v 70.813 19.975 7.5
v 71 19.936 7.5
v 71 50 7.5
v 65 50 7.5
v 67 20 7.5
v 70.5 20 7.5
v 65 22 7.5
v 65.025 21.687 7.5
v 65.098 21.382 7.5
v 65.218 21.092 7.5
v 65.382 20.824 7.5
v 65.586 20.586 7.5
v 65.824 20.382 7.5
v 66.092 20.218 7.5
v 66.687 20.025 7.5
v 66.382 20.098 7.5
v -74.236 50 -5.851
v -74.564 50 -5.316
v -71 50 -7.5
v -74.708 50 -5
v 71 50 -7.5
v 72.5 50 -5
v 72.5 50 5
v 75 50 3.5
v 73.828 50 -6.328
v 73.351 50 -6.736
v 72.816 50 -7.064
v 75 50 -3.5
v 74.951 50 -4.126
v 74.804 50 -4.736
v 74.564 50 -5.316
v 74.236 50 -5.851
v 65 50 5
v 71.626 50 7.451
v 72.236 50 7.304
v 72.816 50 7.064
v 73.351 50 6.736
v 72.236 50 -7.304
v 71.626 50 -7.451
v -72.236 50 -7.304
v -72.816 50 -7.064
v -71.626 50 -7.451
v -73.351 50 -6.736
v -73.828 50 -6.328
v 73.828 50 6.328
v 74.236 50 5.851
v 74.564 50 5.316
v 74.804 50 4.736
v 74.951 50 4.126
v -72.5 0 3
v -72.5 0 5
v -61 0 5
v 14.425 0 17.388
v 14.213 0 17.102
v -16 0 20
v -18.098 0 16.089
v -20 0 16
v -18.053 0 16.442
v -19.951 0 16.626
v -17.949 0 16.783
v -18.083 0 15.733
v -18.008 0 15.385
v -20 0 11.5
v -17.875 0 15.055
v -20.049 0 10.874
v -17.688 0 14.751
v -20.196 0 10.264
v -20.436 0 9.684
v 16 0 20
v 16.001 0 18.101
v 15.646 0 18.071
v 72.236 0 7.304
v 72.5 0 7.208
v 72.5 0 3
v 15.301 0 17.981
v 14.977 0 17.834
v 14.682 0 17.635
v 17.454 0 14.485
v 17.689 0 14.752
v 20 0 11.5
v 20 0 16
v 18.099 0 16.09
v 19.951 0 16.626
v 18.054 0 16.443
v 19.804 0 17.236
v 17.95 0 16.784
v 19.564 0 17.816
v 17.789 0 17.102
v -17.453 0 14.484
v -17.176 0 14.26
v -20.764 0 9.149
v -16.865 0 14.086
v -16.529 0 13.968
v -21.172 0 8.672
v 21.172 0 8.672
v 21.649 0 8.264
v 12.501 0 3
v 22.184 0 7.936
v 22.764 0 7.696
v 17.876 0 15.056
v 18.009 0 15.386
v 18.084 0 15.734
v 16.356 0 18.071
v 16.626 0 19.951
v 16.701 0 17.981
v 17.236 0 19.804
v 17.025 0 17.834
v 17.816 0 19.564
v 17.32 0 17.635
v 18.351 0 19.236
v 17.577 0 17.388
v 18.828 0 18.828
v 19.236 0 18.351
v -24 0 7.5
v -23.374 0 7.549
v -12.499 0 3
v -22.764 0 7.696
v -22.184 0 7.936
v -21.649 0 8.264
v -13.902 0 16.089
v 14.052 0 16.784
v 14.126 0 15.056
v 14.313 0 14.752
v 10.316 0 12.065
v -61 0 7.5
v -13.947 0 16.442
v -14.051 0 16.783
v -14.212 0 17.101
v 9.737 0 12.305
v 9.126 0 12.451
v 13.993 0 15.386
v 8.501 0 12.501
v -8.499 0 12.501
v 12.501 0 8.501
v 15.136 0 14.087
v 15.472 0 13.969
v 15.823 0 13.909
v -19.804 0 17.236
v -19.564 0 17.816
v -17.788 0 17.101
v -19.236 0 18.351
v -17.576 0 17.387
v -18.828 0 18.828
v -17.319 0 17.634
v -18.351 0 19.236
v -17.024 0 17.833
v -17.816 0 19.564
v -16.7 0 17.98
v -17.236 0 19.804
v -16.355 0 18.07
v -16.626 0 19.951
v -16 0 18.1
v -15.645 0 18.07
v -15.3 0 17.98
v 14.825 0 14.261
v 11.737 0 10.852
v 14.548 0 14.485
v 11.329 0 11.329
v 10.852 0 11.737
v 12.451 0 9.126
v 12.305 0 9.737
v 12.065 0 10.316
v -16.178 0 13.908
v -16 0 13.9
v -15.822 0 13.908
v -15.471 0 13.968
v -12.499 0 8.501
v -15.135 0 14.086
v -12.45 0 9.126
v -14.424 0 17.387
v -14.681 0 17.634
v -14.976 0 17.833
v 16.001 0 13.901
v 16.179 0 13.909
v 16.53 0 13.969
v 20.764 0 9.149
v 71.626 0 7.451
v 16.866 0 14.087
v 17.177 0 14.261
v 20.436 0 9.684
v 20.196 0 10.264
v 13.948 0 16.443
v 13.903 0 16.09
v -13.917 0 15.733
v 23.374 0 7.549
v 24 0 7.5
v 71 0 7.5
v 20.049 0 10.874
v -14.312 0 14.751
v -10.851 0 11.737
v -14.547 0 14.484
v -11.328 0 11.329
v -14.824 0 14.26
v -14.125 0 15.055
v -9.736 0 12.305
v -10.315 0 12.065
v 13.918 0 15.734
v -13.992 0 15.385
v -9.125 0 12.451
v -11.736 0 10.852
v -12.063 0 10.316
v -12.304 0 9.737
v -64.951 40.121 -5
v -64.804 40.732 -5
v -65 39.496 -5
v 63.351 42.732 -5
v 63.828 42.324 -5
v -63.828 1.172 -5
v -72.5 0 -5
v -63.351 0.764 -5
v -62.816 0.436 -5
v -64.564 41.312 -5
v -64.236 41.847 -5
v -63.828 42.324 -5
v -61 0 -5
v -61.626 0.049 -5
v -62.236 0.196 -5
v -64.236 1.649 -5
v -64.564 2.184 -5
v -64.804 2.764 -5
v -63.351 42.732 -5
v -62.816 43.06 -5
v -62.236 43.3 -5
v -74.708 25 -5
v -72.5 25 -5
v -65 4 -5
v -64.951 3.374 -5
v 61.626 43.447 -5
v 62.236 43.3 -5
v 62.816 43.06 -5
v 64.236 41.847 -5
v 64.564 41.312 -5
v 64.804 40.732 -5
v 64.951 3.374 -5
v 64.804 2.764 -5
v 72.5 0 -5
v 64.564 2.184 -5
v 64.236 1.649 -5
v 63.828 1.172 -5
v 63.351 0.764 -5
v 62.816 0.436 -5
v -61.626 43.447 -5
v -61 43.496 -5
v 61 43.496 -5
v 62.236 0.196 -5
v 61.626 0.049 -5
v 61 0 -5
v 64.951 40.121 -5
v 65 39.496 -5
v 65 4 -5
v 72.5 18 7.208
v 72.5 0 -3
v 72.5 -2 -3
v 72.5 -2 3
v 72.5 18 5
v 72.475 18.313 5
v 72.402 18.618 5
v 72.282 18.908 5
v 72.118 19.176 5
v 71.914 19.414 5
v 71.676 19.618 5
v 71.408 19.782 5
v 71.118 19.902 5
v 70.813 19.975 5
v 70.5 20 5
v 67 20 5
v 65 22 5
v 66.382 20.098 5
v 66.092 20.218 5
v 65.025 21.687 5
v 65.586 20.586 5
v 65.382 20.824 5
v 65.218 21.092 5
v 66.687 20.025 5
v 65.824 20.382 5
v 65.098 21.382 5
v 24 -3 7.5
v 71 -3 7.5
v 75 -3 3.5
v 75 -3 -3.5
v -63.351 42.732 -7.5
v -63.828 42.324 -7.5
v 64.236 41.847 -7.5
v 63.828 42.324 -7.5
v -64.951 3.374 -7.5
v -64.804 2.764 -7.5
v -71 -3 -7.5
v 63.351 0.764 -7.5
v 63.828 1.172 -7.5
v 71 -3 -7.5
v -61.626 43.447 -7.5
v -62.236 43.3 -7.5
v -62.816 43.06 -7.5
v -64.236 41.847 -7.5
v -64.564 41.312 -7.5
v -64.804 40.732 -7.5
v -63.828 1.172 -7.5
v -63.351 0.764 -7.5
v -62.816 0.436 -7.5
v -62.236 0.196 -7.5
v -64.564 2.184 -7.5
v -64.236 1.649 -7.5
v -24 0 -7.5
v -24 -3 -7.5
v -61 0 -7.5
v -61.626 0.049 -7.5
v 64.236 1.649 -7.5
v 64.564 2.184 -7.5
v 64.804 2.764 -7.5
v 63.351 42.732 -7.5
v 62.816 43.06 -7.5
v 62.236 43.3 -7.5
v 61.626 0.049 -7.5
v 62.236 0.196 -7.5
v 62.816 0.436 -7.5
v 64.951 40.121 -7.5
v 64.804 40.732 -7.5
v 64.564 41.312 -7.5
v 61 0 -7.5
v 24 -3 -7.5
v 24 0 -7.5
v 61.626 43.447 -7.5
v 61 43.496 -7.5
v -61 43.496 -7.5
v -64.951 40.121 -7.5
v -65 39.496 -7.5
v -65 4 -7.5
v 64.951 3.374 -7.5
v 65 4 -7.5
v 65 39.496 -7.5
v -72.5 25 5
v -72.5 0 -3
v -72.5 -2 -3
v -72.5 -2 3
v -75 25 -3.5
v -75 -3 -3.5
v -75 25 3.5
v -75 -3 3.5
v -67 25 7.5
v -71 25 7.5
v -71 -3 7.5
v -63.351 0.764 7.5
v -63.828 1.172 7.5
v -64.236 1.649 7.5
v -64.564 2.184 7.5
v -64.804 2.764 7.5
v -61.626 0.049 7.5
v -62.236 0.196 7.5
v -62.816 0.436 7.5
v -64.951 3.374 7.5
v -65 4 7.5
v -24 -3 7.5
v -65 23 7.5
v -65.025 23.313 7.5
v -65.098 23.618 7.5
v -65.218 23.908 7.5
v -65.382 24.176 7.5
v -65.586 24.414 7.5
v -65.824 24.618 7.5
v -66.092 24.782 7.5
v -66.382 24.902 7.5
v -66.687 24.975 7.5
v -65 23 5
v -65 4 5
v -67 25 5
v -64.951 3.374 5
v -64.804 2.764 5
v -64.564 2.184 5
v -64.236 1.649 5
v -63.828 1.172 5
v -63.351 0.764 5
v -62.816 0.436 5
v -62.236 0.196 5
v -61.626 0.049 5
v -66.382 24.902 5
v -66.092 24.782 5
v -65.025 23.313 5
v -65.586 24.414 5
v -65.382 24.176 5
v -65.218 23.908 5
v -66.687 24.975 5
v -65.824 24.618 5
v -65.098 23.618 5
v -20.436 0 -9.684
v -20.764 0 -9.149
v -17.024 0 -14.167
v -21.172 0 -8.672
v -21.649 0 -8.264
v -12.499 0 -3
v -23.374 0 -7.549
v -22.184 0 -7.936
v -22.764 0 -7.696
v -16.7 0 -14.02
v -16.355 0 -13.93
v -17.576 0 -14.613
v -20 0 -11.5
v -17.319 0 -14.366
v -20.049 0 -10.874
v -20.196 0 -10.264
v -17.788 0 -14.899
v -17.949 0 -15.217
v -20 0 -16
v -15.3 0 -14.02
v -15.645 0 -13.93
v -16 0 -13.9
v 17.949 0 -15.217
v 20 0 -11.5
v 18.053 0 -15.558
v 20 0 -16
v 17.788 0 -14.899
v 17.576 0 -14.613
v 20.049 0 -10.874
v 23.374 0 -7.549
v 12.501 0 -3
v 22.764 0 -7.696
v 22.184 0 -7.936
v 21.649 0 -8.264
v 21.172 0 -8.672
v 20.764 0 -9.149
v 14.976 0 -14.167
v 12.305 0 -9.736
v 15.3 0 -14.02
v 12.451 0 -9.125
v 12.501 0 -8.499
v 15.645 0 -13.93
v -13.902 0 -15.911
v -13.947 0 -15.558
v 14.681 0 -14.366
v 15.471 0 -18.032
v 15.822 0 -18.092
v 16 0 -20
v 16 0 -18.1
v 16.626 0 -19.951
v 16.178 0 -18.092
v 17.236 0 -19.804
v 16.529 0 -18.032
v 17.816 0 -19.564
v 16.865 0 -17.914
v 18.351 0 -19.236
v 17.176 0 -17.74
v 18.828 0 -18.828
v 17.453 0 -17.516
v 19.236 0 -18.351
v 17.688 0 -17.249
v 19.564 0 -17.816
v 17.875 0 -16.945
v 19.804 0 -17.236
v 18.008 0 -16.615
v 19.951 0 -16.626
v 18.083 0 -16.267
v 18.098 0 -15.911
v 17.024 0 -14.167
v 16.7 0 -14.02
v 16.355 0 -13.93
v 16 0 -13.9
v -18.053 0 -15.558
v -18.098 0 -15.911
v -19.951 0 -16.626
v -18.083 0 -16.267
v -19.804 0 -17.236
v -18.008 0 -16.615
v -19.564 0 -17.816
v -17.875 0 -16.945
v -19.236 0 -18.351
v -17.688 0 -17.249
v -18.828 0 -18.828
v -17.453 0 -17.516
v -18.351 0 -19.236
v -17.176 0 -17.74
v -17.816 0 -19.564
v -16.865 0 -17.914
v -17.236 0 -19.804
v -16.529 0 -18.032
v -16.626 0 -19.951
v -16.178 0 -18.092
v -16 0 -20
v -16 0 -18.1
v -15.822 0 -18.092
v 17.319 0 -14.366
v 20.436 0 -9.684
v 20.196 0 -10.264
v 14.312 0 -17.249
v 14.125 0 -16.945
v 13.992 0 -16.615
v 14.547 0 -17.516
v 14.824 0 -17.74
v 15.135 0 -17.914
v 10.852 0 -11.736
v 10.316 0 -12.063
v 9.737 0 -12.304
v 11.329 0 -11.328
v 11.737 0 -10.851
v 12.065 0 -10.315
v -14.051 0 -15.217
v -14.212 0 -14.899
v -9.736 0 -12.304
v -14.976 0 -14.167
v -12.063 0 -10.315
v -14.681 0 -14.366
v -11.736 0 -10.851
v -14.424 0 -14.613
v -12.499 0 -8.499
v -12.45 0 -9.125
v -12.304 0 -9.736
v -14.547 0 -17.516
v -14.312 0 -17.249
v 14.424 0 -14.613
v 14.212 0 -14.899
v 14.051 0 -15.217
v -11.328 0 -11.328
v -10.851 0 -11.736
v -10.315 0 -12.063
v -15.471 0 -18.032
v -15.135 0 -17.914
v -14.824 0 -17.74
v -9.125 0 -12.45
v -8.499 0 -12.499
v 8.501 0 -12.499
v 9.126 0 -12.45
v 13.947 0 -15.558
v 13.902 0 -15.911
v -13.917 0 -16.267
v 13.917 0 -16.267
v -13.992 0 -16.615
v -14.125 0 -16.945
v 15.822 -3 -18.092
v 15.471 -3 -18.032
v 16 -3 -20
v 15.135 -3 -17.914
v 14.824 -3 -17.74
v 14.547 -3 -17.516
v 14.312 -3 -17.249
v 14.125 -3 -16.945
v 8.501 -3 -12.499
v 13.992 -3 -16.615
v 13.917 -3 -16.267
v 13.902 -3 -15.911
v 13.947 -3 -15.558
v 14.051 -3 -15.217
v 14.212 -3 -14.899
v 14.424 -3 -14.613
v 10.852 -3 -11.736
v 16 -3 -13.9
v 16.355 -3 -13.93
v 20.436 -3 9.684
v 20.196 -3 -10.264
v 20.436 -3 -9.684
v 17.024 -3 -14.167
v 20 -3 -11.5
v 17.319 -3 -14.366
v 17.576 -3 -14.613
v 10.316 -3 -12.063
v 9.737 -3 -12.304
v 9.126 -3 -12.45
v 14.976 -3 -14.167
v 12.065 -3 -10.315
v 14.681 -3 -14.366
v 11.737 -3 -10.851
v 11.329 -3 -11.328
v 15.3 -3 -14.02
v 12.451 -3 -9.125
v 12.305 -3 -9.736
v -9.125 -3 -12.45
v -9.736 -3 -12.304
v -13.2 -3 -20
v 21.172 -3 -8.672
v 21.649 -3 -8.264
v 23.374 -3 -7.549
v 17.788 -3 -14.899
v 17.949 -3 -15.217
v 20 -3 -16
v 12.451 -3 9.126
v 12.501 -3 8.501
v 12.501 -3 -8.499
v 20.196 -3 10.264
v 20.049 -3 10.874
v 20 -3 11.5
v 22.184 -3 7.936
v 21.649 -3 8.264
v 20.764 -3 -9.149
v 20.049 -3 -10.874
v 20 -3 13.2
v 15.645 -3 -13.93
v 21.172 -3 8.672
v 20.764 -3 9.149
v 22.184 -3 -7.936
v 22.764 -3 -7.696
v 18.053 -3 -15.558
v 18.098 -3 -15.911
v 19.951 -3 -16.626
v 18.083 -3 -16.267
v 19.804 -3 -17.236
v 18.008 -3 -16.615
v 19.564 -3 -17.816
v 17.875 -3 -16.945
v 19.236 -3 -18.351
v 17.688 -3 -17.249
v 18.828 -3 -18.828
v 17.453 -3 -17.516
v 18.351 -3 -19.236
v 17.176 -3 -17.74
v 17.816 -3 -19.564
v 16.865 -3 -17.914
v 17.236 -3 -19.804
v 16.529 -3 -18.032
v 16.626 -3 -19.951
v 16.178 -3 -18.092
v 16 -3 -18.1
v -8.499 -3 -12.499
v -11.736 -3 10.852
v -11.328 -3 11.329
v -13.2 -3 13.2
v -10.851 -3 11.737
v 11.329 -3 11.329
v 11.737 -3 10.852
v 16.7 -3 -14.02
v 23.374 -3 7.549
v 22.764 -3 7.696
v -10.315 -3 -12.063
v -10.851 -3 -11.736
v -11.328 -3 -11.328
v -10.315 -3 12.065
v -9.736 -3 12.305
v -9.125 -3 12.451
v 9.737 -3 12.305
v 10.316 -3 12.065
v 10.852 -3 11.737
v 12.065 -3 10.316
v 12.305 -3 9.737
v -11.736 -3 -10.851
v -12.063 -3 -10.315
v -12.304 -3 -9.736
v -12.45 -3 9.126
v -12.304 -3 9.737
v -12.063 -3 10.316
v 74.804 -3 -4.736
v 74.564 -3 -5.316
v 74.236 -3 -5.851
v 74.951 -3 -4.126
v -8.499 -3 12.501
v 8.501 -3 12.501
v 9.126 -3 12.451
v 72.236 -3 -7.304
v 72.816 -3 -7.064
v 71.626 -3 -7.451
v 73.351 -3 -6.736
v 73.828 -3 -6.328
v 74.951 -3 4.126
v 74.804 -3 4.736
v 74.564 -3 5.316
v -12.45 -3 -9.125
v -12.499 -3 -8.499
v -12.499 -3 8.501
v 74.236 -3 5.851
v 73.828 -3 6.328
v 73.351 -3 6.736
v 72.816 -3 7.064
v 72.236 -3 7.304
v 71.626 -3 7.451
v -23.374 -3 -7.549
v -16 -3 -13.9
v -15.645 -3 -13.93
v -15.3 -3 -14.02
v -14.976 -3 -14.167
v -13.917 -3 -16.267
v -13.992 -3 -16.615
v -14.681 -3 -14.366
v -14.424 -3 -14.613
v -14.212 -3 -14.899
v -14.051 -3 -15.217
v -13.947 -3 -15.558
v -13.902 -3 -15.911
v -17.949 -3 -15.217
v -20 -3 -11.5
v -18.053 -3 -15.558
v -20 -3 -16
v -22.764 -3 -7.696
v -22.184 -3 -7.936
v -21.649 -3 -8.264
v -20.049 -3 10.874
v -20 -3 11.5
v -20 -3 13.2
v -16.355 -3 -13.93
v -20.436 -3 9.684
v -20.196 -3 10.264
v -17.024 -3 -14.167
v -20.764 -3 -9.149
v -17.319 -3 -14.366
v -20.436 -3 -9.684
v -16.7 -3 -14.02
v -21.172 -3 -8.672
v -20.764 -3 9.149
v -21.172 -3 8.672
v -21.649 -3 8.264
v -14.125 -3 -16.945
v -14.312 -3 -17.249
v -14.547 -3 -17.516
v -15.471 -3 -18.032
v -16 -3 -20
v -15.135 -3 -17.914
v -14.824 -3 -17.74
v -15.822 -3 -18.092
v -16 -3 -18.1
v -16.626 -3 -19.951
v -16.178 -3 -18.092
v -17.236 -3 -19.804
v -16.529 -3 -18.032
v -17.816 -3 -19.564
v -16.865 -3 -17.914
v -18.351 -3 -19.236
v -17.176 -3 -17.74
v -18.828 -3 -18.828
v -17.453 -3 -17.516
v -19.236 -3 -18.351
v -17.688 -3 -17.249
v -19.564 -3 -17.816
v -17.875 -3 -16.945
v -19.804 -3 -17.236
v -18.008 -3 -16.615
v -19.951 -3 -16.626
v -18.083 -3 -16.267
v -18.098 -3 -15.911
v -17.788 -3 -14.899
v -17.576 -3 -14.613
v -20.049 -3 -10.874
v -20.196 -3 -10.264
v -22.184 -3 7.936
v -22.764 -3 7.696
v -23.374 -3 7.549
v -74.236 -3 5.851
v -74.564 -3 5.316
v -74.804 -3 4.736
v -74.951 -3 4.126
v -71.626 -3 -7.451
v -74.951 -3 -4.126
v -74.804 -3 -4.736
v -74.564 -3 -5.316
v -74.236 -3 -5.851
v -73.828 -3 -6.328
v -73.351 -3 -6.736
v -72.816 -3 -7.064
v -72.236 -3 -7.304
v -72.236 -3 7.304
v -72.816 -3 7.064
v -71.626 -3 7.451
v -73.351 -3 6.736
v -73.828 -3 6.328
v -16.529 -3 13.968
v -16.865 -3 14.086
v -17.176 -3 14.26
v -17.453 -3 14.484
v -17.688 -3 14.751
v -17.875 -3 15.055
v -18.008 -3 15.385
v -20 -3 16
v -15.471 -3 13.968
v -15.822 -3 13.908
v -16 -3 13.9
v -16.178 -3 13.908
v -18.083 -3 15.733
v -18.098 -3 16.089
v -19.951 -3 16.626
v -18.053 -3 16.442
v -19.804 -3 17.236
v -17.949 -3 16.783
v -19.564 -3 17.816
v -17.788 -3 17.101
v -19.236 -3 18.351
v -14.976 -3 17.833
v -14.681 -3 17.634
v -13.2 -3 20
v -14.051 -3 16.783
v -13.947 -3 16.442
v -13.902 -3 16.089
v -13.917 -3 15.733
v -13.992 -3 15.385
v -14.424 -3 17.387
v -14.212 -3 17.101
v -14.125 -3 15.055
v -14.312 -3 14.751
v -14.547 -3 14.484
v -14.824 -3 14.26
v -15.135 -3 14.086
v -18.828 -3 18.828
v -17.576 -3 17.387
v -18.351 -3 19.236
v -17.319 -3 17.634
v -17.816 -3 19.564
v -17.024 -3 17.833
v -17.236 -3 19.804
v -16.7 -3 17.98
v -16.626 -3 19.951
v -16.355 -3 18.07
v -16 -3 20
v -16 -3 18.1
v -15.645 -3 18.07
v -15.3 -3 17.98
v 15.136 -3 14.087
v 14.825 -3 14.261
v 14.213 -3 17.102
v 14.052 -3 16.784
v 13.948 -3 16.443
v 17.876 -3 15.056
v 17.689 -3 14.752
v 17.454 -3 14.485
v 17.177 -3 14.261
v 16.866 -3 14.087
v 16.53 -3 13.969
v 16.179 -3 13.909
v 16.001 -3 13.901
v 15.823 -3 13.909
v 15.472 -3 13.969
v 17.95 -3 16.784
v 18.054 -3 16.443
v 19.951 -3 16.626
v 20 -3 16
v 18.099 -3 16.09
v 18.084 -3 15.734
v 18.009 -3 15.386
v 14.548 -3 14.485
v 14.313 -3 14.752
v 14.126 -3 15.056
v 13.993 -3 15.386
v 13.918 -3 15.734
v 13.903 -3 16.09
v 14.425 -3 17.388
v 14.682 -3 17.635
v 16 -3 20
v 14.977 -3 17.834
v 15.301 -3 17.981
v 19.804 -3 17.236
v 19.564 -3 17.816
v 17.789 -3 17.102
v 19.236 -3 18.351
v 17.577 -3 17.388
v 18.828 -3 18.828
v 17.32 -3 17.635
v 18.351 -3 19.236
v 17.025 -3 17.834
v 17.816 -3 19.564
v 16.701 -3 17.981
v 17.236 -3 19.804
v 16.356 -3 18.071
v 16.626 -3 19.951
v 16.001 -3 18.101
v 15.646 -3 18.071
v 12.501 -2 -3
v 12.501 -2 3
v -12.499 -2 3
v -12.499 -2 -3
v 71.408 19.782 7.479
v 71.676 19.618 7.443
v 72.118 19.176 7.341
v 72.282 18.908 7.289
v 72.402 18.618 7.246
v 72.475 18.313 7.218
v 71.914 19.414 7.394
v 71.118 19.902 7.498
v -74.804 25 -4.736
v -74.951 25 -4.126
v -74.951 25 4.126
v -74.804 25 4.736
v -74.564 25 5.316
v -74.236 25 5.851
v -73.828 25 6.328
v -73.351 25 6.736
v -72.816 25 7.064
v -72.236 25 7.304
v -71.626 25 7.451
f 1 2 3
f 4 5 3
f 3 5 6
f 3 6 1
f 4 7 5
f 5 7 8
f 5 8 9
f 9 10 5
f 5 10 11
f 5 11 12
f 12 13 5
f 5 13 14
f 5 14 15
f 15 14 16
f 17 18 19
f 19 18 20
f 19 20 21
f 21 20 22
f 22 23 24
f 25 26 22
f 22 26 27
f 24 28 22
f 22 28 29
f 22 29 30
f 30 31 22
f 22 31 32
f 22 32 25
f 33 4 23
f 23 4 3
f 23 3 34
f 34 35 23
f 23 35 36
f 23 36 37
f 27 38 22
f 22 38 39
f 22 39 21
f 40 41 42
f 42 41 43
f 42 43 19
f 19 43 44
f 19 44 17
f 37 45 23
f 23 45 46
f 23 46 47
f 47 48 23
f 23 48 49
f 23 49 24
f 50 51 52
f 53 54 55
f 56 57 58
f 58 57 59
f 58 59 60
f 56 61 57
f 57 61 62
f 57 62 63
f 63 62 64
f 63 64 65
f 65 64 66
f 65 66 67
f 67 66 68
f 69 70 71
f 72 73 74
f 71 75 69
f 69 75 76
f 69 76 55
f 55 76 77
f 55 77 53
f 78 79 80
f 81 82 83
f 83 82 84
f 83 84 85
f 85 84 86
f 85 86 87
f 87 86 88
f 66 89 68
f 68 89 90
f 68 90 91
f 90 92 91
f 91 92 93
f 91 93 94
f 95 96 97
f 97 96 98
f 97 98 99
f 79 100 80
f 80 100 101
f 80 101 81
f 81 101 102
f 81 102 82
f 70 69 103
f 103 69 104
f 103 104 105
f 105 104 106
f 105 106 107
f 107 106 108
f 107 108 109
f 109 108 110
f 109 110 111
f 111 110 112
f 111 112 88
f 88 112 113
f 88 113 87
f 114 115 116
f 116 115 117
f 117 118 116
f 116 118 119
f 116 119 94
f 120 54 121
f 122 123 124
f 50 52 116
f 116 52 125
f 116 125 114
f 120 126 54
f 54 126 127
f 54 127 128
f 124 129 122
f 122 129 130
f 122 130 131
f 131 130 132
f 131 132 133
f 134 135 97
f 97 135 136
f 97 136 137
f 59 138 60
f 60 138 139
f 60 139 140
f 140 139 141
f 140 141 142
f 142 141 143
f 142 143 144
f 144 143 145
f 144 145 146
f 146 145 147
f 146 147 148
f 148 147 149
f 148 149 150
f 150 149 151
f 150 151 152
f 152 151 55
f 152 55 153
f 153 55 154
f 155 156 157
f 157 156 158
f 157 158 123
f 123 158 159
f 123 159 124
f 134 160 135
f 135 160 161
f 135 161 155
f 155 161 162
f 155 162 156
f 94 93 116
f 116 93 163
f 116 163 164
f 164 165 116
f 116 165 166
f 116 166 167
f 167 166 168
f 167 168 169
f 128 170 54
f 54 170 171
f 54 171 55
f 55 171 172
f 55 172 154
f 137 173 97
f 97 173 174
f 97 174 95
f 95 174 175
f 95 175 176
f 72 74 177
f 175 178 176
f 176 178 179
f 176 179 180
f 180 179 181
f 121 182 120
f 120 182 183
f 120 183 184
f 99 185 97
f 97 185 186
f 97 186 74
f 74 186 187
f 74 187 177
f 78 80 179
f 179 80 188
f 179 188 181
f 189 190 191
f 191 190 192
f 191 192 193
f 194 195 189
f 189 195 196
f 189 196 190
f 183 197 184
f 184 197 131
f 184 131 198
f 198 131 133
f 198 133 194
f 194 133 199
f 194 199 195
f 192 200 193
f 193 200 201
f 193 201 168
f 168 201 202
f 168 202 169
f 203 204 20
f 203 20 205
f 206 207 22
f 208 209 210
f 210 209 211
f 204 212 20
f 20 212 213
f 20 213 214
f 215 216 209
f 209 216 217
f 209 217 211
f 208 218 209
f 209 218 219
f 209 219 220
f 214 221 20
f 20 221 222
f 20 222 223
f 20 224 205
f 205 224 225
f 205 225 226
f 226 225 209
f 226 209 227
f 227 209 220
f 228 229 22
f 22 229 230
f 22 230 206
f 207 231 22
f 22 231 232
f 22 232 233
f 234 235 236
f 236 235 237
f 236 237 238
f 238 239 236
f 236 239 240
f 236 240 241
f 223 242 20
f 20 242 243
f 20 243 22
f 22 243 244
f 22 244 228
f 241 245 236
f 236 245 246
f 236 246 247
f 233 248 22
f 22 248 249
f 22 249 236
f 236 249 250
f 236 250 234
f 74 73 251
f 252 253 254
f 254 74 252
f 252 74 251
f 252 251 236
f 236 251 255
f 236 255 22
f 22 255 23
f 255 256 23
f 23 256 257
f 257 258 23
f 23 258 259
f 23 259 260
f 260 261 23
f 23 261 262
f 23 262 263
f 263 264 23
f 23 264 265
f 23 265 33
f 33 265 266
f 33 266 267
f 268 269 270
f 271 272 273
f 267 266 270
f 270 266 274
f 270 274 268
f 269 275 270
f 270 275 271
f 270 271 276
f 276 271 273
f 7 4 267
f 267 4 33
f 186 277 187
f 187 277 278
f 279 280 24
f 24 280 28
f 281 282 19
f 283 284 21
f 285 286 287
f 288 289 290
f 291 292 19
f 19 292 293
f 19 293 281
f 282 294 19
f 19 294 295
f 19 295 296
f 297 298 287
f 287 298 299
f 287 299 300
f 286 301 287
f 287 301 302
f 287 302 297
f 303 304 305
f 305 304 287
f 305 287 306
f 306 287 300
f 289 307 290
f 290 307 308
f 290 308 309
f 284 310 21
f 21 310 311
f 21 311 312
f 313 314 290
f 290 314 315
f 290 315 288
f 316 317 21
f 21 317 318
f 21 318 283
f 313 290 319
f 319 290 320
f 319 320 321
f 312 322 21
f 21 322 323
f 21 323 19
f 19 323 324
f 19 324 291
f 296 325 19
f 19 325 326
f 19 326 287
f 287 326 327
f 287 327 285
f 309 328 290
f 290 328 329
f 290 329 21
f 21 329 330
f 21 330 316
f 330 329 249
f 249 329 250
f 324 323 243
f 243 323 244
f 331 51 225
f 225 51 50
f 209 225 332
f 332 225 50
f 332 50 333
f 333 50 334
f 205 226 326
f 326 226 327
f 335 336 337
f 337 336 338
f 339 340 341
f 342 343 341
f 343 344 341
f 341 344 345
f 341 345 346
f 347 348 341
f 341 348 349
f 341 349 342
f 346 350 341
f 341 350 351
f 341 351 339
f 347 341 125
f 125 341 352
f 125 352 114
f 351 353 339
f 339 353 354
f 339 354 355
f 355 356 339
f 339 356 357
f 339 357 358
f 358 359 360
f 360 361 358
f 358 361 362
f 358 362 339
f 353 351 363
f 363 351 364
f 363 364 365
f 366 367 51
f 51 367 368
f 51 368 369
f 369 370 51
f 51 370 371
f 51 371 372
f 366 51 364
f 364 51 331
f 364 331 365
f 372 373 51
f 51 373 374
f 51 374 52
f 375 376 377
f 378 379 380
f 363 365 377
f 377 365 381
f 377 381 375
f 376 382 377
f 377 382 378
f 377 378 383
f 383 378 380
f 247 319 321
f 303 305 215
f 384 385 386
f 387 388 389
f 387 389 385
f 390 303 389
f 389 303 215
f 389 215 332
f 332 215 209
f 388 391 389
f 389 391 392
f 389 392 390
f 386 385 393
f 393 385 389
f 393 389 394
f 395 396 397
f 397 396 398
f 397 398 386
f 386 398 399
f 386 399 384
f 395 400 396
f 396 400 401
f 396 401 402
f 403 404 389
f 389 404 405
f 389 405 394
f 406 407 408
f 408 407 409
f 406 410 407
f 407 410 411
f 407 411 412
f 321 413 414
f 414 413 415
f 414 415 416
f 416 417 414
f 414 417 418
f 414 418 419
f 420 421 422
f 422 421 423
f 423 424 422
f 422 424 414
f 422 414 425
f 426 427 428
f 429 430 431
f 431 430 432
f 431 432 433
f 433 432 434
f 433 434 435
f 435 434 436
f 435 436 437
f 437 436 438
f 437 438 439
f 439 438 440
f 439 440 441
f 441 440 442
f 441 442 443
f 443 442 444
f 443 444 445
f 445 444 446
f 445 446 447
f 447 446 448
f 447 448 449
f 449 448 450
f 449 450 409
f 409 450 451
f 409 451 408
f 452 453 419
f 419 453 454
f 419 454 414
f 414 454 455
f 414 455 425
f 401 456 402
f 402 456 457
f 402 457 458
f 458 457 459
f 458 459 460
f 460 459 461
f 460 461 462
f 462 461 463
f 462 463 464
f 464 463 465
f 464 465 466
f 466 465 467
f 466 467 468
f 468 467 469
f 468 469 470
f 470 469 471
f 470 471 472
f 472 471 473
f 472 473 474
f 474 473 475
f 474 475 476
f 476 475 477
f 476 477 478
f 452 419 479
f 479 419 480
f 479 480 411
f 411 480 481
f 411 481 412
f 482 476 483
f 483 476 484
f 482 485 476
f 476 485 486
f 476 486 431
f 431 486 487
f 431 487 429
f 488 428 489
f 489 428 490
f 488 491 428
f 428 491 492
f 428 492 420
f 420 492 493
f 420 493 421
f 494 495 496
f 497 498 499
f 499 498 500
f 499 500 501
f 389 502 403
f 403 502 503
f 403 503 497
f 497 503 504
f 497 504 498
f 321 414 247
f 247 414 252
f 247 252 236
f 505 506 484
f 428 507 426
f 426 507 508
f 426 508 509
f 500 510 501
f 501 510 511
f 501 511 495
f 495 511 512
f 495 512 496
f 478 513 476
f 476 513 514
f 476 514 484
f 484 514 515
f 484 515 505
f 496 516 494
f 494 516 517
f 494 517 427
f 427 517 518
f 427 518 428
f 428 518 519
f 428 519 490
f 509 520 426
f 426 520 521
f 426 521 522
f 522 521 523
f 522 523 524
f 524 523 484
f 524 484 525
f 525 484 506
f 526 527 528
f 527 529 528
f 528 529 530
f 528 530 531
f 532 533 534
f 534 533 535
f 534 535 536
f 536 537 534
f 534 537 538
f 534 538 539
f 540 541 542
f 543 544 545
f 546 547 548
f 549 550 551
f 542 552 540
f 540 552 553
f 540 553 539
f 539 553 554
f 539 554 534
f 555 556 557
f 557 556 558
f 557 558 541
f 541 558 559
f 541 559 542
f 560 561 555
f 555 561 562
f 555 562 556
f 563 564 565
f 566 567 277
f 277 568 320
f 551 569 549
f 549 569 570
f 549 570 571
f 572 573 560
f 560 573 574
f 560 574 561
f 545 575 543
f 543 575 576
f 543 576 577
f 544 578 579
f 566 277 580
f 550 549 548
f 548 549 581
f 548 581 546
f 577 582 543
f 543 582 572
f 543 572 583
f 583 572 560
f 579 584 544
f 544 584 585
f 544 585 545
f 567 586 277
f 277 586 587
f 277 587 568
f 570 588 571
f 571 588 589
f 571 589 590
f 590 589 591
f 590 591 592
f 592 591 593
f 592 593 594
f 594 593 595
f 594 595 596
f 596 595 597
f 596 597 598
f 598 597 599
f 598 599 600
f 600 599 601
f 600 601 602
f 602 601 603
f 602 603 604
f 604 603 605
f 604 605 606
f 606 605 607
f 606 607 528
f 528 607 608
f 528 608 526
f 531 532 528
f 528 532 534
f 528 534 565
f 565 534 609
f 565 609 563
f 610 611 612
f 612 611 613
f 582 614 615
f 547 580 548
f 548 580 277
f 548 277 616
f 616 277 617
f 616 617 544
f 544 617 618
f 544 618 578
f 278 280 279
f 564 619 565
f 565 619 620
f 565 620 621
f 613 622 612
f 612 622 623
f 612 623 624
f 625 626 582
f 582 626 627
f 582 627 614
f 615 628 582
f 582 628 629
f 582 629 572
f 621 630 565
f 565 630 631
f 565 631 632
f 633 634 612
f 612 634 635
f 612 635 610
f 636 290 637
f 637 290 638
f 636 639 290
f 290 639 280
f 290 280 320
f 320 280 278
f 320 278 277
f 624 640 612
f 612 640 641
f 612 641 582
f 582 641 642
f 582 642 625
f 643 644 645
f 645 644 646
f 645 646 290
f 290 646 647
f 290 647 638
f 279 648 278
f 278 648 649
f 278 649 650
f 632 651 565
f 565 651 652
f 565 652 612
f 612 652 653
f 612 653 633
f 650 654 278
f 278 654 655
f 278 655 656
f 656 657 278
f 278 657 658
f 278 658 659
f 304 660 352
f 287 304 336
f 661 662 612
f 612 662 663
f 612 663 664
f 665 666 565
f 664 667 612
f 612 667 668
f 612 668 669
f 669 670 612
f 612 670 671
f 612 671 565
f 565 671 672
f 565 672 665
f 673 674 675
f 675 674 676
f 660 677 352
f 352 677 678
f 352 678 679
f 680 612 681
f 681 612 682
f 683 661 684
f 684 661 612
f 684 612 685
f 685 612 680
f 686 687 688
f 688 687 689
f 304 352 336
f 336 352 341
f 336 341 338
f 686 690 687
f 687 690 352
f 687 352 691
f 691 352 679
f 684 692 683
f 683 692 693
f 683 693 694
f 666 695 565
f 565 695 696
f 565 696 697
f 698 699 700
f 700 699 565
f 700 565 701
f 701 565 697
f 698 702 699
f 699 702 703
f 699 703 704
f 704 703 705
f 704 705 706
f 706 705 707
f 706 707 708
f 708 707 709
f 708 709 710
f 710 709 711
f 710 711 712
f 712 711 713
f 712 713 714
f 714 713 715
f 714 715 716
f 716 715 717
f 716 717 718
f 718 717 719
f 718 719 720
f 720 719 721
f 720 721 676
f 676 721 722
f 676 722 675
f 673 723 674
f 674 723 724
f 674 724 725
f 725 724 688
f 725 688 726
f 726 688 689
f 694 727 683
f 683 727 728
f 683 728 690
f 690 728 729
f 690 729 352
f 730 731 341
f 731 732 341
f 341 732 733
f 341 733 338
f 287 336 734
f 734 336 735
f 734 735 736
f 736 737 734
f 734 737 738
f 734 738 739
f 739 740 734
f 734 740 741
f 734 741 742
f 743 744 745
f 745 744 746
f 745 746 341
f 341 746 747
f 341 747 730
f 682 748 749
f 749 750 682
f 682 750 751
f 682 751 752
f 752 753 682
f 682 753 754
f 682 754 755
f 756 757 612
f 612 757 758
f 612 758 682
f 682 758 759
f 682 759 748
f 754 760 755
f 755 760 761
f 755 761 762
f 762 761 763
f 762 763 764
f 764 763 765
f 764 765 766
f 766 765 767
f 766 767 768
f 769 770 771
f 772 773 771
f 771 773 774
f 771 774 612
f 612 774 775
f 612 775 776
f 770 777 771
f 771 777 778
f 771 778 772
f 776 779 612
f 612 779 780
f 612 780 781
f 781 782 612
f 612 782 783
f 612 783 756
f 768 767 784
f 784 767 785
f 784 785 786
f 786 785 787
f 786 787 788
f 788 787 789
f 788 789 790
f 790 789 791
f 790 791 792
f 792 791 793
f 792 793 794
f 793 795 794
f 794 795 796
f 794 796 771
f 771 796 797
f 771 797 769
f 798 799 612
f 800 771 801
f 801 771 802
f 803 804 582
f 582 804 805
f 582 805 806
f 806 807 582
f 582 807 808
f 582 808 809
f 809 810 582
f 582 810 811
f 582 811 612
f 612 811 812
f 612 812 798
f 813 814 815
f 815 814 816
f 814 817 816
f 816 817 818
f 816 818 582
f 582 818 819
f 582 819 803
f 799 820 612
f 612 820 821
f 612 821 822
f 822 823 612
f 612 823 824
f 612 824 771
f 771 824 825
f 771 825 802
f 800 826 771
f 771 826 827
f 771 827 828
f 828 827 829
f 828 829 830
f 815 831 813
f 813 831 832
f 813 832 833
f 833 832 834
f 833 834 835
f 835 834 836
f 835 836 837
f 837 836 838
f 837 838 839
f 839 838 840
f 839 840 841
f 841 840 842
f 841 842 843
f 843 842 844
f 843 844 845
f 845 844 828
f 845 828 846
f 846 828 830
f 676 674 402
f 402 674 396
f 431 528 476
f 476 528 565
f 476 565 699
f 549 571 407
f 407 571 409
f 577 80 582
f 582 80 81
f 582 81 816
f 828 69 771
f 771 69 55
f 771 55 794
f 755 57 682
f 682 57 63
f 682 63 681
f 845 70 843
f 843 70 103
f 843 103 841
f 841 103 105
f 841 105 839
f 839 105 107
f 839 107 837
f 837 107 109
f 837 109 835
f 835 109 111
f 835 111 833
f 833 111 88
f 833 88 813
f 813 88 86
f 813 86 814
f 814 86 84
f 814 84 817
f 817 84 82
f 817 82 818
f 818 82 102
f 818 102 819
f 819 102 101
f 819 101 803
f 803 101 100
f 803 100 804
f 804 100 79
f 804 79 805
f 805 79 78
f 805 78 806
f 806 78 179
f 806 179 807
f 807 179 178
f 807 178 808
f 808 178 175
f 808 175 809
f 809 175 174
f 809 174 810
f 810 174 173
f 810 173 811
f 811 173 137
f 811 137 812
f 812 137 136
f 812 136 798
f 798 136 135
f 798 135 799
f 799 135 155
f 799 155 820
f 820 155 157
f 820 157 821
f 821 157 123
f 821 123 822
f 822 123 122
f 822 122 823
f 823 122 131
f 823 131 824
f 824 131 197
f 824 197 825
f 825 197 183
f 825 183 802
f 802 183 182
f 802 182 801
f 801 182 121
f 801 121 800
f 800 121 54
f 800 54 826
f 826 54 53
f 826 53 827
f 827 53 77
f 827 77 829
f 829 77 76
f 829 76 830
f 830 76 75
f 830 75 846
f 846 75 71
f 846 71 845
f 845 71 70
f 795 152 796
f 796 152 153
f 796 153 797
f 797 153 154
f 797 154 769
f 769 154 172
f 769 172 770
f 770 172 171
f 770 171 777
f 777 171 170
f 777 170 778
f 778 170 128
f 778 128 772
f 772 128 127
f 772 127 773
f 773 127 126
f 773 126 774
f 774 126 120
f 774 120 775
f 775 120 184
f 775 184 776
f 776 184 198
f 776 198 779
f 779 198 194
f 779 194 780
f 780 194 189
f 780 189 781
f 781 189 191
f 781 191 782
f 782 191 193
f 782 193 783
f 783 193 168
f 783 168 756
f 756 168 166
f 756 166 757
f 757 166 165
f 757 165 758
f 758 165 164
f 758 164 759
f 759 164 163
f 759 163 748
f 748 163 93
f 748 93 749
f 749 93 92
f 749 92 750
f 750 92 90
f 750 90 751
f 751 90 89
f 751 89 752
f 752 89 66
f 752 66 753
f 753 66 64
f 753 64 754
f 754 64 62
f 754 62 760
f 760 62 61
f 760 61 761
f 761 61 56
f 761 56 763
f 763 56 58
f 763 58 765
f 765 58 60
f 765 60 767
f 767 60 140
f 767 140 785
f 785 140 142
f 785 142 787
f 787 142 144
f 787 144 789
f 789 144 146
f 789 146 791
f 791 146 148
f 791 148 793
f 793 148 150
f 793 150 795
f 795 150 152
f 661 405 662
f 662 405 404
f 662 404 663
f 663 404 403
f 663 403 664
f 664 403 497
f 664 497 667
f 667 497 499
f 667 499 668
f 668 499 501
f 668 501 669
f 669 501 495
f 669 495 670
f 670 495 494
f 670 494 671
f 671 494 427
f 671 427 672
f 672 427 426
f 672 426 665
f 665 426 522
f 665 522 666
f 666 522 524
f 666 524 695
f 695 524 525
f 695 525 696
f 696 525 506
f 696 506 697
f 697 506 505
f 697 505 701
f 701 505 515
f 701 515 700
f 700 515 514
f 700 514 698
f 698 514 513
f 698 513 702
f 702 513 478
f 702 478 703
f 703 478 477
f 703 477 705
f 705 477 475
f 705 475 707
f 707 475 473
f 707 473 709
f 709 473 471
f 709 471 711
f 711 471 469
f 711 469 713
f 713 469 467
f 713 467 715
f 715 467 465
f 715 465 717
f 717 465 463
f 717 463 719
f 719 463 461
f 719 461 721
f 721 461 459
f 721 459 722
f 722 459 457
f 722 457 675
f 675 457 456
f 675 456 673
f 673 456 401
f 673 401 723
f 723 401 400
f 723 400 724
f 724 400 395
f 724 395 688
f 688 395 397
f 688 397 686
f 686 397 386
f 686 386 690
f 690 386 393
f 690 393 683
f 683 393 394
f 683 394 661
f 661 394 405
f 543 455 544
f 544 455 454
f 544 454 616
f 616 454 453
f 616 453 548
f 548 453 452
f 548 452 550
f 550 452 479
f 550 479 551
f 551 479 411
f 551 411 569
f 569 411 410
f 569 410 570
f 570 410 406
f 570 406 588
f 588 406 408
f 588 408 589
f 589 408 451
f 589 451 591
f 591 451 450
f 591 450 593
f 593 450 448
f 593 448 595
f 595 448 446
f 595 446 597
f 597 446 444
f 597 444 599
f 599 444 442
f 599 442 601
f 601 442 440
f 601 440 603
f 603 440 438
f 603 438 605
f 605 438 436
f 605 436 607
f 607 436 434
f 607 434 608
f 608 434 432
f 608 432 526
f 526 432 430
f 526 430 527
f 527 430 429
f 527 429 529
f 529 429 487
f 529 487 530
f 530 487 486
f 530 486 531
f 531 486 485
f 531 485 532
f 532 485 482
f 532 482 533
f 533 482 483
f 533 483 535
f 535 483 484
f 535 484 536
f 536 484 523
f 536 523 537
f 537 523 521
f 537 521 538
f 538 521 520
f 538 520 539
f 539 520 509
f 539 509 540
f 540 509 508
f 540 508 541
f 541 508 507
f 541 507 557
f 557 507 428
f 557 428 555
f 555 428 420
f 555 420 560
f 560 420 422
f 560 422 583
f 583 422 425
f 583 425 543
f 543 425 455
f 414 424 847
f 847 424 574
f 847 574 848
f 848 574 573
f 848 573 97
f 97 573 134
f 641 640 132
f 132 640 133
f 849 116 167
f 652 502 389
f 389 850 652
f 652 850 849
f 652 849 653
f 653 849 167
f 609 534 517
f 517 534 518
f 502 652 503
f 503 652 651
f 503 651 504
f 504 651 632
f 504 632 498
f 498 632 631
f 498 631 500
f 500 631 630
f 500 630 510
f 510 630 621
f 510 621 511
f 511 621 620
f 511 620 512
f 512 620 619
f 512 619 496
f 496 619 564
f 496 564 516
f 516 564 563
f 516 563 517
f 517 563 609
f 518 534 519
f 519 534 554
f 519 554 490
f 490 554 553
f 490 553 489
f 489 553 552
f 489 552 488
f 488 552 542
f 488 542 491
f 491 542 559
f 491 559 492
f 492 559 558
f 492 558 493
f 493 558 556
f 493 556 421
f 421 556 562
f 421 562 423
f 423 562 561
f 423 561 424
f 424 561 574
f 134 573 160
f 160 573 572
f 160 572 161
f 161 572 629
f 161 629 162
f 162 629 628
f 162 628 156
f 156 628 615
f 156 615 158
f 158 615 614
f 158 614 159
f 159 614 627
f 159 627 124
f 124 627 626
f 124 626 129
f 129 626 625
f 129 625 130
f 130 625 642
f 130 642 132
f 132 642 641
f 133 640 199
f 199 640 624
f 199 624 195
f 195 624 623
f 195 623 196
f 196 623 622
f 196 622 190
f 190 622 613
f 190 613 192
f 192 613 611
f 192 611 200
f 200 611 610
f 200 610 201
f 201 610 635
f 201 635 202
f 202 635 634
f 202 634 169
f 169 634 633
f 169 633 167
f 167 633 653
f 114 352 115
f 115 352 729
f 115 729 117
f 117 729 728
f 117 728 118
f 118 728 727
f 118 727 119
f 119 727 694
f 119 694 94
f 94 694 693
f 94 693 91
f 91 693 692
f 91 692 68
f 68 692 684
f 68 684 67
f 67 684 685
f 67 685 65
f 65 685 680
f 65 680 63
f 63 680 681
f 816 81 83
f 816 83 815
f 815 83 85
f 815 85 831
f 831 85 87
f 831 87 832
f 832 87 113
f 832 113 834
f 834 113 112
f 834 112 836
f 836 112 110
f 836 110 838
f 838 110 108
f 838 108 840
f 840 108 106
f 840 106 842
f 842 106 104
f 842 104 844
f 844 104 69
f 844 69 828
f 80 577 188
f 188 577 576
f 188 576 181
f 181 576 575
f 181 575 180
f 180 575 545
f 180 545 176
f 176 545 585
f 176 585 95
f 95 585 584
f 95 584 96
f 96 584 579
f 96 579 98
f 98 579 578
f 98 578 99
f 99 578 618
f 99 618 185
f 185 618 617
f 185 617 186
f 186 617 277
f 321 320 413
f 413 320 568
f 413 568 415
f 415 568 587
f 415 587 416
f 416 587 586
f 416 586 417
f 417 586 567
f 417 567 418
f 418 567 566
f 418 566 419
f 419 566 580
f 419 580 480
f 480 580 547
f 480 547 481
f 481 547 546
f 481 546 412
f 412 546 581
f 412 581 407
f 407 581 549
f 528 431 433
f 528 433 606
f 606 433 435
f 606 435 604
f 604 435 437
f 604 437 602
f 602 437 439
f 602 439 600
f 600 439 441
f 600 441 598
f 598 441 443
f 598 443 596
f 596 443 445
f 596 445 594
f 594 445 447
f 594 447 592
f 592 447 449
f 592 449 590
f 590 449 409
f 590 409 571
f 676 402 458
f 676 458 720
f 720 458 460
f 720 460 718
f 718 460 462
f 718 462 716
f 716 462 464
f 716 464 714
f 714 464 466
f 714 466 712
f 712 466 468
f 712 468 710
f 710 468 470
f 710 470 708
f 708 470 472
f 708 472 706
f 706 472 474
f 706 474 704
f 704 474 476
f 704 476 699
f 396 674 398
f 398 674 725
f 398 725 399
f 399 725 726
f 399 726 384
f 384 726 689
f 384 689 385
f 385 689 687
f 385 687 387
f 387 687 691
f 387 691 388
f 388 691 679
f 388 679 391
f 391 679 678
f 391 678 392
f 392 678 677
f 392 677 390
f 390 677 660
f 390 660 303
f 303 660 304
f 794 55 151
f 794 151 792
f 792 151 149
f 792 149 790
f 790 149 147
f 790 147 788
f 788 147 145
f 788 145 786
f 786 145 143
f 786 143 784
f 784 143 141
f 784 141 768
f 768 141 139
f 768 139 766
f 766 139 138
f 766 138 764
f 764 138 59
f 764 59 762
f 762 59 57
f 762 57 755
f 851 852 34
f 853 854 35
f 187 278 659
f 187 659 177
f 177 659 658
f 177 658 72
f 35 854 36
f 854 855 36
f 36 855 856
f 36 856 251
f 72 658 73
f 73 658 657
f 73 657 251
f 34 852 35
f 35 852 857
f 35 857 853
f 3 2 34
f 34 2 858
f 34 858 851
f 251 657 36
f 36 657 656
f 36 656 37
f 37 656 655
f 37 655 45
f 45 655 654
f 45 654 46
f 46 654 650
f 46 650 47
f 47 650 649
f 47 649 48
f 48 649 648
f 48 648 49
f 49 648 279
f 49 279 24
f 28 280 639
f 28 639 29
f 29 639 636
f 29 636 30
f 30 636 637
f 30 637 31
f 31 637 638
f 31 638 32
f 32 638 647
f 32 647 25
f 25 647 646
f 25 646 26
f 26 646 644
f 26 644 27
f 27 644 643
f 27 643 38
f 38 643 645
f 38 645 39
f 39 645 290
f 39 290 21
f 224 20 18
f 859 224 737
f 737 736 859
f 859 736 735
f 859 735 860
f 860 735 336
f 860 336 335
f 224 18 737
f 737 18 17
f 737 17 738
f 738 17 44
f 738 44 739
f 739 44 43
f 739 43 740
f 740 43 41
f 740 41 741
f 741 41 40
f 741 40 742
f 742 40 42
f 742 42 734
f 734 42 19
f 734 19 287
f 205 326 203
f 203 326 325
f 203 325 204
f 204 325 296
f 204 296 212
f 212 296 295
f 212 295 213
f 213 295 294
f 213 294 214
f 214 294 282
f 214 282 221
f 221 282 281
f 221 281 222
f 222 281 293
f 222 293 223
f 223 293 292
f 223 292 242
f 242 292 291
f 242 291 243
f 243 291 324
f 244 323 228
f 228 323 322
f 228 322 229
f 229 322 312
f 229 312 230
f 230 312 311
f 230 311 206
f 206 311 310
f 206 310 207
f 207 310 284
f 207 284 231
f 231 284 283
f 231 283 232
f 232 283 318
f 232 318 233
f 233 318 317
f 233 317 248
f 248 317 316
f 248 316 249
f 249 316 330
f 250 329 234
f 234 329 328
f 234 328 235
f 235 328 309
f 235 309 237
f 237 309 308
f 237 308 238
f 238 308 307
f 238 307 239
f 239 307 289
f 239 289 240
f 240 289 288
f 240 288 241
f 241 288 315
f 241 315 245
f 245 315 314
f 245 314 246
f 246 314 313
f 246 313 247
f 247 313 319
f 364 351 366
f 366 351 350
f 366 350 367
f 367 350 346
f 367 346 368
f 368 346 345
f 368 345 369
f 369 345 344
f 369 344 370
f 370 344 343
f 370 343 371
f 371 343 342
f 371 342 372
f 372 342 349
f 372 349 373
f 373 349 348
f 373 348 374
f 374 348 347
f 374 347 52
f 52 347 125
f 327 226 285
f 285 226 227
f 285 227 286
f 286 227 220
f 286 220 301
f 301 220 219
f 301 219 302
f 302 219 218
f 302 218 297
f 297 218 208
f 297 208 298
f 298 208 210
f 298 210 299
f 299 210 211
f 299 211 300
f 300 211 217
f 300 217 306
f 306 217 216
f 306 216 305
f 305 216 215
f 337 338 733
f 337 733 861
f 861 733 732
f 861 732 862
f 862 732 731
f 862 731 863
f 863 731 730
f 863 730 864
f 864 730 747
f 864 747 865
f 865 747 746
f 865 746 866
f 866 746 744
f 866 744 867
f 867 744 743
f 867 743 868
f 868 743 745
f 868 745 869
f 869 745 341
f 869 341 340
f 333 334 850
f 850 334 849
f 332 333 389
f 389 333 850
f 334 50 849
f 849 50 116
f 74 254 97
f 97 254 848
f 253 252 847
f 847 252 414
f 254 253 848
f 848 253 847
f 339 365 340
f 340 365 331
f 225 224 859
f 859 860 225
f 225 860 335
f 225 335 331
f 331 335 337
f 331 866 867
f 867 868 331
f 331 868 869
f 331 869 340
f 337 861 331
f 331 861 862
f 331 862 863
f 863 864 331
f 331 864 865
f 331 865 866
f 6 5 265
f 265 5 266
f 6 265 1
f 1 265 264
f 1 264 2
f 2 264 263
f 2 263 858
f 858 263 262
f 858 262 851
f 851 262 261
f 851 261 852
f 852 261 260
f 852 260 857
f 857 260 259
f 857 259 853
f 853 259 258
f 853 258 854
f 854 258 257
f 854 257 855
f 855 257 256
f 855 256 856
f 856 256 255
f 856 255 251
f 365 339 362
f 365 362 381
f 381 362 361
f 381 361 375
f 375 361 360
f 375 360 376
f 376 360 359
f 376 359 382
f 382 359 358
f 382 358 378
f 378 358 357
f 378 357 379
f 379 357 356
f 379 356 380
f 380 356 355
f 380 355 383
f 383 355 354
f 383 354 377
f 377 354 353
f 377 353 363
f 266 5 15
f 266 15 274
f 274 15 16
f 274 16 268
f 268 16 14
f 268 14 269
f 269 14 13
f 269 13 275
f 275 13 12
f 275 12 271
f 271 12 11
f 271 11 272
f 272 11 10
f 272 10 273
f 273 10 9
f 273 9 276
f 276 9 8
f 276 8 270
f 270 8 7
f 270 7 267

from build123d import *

# Parameters (mm, degrees)
BOSS_EXTRUDE1_DEPTH   = 50
BOSS_EXTRUDE1_2_DEPTH = 50
SKETCH2_W             = 130
SKETCH2_H             = 6.504238827
BOSS_EXTRUDE2_DEPTH   = 2.5
SKETCH4_R             = 2.1
SKETCH4_W             = 25
SKETCH4_H             = 25
BOSS_EXTRUDE4_DEPTH   = 3
FILLET1_R             = 4
SKETCH5_W             = 145
SKETCH5_H             = 6
CUT_EXTRUDE1_DEPTH    = 2
CUT_EXTRUDE2_DEPTH    = 5
SKETCH7_W             = 4.152825608
SKETCH7_H             = 25.088924328
CUT_EXTRUDE3_DEPTH    = 15
SKETCH8_W             = 11.5
SKETCH8_H             = 20
CUT_EXTRUDE5_DEPTH    = 5
FILLET2_R             = 2


with BuildPart() as part:
    # Sketch1 → Boss-Extrude1 (new body)
    with BuildSketch(Plane(origin=(0, 0, 0), x_dir=(1, 0, 0), z_dir=(0, 1, 0))):
        Polygon((-65, 5), (-65, 7.5), (-75, 7.5), (-75, -7.5), (-65, -7.5), (-65, -5), (-72.5, -5), (-72.5, 5), align=None)
    extrude(amount=BOSS_EXTRUDE1_DEPTH)



with BuildPart() as body_2:
    # Sketch1 → Boss-Extrude1 2 (new body)
    with BuildSketch(Plane(origin=(0, 0, 0), x_dir=(1, 0, 0), z_dir=(0, 1, 0))):
        Polygon((72.5, -5), (72.5, 5), (65, 5), (65, 7.5), (75, 7.5), (75, -7.5), (65, -7.5), (65, -5), align=None)
    extrude(amount=BOSS_EXTRUDE1_2_DEPTH)


with BuildPart() as part_1:
    add(part.part)

    add(body_2.part)  # Boss-Extrude2 merges body 2
    # Sketch2 → Boss-Extrude2 (add)
    with BuildSketch(Plane(origin=(0, 0, -7.5), x_dir=(-1, 0, 0), z_dir=(0, 0, -1))):
        with Locations((0, 46.747880587)):
            Rectangle(SKETCH2_W, SKETCH2_H)
    extrude(amount=-BOSS_EXTRUDE2_DEPTH)

    # Sketch4 → Boss-Extrude4 (add)
    with BuildSketch(Plane.XZ):
        Polygon((20, 7.5), (75, 7.5), (75, -7.5), (20, -7.5), (20, -20), (-20, -20), (-20, -7.5), (-75, -7.5), (-75, 7.5), (-20, 7.5), (-20, 20), (20, 20), align=None)
        with Locations(Location((16.001061443, 16.001061443, 0), (0, 0, 270))):
            Circle(SKETCH4_R, mode=Mode.SUBTRACT)
        with Locations(Location((-16, 16, 0), (0, 0, 270))):
            Circle(SKETCH4_R, mode=Mode.SUBTRACT)
        with Locations(Location((-16, -16, 0), (0, 0, 270))):
            Circle(SKETCH4_R, mode=Mode.SUBTRACT)
        with Locations(Location((16, -16, 0), (0, 0, 270))):
            Circle(SKETCH4_R, mode=Mode.SUBTRACT)
        with Locations((0.000530722, 0.000530722)):
            Rectangle(SKETCH4_W, SKETCH4_H, mode=Mode.SUBTRACT)
    extrude(amount=BOSS_EXTRUDE4_DEPTH)

    # Fillet1
    fillet1_edges = [part_1.edges().sort_by_distance(p)[0] for p in [
        (65, 0, 6.25),
        (75, 23.5, -7.5),
        (75, 23.5, 7.5),
        (65, 43.495761173, -6.25),
        (-65, 43.495761173, -6.25),
        (-65, 0, -6.25),
        (-75, 23.5, -7.5),
        (-75, 23.5, 7.5),
        (-65, 0, 6.25),
        (-20, -1.5, 7.5),
        (-20, -1.5, -7.5),
        (-20, -1.5, -20),
        (20, -1.5, -20),
        (20, -1.5, -7.5),
        (20, -1.5, 7.5),
        (20, -1.5, 20),
        (-20, -1.5, 20),
        (12.500530722, -1.5, 12.500530722),
        (-12.499469278, -1.5, 12.500530722),
        (-12.499469278, -1.5, -12.499469278),
        (12.500530722, -1.5, -12.499469278),
        (65, 0, -6.25),
    ]]
    fillet(fillet1_edges, radius=FILLET1_R)

    # Sketch5 → Cut-Extrude1 (cut)
    with BuildSketch(Plane(origin=(0, 0, 0), x_dir=(1, 0, 0), z_dir=(0, 1, 0))):
        Rectangle(SKETCH5_W, SKETCH5_H)
    extrude(amount=-CUT_EXTRUDE1_DEPTH, mode=Mode.SUBTRACT)

    # Sketch6 → Cut-Extrude2 (cut)
    with BuildSketch(Plane(origin=(-72.5, 0, 0), x_dir=(0, 0, -1), z_dir=(1, 0, 0))):
        Polygon((-14.532801633, 51.358122402), (-14.532801633, 25), (-5, 25), (5, 25), (5, 51.358122402), align=None)
    extrude(amount=-CUT_EXTRUDE2_DEPTH, mode=Mode.SUBTRACT)

    # Sketch7 → Cut-Extrude3 (cut)
    with BuildSketch(Plane.ZY.offset(72.5)):
        with Locations((7.076412804, 37.544462164)):
            Rectangle(SKETCH7_W, SKETCH7_H)
    extrude(amount=-CUT_EXTRUDE3_DEPTH, mode=Mode.SUBTRACT)

    # Sketch8 → Cut-Extrude5 (cut)
    with BuildSketch(Plane.XY.offset(7.5)):
        with Locations((66.75, 10)):
            Rectangle(SKETCH8_W, SKETCH8_H)
    extrude(amount=-CUT_EXTRUDE5_DEPTH, mode=Mode.SUBTRACT)

    # Fillet2
    fillet2_edges = [part_1.edges().sort_by_distance(p)[0] for p in [
        (72.5, 20, 6.104049622),
        (-65, 25, 6.25),
        (65, 20, 6.25),
    ]]
    fillet(fillet2_edges, radius=FILLET2_R)


solid = part_1.part
